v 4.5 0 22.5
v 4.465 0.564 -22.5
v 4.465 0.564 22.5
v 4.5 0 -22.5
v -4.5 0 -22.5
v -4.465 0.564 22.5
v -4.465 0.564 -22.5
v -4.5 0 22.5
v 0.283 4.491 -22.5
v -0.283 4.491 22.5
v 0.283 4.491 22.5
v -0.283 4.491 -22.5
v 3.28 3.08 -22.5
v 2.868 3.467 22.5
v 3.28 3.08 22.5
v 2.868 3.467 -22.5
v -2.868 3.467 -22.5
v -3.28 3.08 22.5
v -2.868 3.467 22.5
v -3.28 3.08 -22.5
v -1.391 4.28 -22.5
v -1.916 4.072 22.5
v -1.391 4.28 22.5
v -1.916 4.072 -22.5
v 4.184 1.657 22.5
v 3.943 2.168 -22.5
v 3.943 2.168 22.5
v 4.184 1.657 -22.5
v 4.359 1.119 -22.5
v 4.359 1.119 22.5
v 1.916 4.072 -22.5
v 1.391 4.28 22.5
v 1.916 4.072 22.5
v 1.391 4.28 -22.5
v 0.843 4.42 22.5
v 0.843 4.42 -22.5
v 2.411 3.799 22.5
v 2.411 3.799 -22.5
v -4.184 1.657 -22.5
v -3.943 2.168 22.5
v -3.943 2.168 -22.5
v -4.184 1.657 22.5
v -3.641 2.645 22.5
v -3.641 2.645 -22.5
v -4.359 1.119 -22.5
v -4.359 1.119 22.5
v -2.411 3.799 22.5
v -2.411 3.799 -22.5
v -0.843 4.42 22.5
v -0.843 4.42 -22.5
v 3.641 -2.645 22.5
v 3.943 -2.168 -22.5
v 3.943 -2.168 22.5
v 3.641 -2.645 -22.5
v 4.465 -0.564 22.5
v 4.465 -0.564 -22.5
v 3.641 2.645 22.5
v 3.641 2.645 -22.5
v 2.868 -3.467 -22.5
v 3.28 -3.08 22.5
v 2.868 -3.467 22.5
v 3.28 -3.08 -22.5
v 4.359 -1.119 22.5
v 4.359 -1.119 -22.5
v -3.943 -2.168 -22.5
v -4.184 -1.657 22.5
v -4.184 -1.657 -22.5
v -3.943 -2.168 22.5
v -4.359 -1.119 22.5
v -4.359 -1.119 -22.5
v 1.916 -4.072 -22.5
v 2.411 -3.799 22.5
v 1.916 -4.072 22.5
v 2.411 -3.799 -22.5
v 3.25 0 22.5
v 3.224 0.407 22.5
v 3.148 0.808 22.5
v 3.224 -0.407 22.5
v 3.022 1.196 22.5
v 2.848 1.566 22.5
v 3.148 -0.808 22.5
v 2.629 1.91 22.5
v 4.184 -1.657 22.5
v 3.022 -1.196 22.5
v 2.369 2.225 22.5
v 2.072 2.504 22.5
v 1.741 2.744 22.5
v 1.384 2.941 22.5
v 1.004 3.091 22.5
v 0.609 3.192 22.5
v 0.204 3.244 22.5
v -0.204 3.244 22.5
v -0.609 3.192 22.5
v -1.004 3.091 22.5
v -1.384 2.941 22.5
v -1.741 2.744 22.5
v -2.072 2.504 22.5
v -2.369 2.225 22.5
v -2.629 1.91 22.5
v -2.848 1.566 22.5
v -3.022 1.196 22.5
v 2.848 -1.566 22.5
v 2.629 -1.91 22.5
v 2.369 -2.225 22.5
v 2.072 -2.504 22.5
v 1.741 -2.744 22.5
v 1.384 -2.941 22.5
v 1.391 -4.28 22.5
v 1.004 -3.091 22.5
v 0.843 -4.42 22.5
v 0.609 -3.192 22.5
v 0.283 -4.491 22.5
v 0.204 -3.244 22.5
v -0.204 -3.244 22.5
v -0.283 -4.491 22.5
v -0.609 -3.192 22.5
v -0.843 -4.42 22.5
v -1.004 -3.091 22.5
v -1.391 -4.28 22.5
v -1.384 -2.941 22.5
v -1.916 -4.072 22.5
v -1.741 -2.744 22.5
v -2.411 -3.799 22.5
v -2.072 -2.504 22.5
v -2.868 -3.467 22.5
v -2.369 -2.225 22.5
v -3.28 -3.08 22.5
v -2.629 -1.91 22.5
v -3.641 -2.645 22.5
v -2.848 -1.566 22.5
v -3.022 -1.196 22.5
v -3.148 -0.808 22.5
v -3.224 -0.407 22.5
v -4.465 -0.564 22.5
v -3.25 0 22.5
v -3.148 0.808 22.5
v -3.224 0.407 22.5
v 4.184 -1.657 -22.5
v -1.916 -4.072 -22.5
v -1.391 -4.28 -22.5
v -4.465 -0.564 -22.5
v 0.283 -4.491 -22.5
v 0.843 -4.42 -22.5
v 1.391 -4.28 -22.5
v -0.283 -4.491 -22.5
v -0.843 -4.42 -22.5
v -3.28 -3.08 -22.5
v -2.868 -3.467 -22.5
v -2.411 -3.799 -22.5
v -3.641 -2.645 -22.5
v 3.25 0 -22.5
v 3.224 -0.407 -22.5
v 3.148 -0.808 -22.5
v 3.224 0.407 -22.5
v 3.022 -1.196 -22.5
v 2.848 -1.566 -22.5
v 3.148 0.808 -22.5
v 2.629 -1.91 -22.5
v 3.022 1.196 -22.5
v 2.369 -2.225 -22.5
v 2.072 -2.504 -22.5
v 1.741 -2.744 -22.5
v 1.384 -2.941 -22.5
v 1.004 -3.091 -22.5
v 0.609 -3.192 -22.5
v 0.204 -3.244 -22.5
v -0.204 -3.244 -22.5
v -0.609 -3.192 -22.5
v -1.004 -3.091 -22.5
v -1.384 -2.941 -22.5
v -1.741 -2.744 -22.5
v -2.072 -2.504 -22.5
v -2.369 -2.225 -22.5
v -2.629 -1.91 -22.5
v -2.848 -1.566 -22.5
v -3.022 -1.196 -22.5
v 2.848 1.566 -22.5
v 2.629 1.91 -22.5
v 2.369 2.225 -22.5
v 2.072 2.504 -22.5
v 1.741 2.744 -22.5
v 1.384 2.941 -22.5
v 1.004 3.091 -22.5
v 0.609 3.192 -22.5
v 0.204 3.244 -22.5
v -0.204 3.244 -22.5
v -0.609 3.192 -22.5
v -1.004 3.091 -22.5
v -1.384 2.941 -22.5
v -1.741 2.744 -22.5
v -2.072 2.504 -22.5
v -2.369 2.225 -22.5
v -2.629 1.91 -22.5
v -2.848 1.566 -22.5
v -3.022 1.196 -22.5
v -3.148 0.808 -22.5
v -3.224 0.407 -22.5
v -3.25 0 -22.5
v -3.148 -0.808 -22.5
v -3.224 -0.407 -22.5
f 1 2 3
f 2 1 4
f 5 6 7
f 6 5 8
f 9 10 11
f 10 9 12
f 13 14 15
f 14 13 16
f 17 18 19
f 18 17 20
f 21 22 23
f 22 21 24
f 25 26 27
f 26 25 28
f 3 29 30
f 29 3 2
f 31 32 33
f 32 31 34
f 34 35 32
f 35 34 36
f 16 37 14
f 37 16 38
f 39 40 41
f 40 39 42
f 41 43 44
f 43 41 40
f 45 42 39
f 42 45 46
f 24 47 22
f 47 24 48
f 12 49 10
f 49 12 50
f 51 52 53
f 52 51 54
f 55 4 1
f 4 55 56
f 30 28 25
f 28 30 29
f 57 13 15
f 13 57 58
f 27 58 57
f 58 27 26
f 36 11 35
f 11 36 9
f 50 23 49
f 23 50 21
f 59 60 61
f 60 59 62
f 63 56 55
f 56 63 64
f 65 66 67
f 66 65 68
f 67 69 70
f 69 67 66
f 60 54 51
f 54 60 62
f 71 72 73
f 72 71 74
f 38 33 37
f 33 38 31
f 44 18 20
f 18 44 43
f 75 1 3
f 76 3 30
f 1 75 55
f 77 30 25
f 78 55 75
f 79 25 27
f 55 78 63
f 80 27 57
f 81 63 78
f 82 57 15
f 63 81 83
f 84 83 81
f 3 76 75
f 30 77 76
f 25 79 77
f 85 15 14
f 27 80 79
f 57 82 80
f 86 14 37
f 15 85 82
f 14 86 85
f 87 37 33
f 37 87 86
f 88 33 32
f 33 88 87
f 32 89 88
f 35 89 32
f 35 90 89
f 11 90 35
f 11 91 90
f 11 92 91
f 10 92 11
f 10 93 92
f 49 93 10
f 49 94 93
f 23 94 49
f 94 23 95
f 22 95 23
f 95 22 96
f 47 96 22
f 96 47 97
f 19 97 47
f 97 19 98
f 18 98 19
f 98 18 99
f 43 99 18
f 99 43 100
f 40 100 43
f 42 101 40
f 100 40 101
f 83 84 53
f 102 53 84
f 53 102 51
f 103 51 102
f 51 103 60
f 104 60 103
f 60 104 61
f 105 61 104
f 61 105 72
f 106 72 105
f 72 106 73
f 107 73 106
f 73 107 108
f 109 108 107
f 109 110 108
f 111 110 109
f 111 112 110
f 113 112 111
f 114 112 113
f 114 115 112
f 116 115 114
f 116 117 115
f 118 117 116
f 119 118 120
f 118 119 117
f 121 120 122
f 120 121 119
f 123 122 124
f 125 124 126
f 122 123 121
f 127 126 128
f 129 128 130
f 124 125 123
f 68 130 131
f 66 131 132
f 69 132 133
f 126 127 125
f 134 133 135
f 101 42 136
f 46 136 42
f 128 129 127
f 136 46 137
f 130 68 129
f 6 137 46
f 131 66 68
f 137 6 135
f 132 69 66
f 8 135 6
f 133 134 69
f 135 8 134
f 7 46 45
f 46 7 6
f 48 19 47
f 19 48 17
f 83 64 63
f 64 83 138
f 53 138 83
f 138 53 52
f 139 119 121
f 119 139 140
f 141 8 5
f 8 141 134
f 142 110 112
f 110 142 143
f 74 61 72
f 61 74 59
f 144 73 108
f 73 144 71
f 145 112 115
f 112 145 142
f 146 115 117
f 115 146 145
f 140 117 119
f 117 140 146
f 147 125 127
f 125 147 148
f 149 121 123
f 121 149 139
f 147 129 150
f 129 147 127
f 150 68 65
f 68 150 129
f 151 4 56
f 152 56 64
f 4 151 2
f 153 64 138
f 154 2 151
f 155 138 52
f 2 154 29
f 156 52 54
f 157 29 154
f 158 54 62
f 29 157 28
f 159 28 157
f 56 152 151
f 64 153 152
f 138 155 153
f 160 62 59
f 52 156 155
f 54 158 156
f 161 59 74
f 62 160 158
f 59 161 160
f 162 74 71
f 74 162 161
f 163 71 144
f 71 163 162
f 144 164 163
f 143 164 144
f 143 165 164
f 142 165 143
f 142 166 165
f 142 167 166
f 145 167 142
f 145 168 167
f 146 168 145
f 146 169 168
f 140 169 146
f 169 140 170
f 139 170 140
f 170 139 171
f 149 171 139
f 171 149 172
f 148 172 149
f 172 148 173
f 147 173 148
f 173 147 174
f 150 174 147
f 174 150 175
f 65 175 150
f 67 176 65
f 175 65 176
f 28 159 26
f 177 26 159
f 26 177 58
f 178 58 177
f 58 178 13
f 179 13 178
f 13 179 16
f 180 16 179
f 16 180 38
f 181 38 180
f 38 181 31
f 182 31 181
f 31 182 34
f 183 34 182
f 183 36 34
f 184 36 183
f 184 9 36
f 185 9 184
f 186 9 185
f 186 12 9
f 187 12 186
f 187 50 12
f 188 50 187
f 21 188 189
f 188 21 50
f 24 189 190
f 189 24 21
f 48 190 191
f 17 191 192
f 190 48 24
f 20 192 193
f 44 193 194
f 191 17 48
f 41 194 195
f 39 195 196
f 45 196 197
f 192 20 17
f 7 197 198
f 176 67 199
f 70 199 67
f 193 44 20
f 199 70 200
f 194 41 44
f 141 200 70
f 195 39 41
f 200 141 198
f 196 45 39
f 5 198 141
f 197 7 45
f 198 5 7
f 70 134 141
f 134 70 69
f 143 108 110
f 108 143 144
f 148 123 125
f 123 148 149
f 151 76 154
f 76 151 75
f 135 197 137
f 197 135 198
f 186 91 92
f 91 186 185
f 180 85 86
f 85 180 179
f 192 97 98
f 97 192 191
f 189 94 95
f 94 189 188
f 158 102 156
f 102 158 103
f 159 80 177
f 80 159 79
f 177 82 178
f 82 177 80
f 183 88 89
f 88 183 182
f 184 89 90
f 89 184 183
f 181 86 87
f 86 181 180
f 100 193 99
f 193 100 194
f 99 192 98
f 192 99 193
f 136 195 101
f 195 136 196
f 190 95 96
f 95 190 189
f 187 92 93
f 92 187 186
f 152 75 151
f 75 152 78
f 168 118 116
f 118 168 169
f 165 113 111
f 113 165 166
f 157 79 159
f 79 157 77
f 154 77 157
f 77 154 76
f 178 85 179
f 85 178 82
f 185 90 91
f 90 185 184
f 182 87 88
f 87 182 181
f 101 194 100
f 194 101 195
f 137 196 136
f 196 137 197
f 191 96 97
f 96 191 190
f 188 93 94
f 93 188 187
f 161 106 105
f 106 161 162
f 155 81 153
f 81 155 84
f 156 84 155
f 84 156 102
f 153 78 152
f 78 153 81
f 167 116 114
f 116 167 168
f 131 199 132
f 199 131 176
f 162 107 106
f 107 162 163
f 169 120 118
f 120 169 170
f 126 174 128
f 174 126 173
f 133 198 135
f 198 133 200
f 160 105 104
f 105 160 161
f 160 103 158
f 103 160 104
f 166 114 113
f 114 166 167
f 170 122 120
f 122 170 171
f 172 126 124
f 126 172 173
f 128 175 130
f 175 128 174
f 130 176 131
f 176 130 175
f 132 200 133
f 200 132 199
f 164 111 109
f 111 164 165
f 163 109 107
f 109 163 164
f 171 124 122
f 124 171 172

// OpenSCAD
$fn = 50;


difference() {
	union() {
		translate(v = [0, 0, -22.5000000000]) {
			cylinder(h = 45, r = 4.5000000000);
		}
	}
	union() {
		translate(v = [0, 0, -100.0000000000]) {
			cylinder(h = 200, r = 3.2500000000);
		}
	}
}
